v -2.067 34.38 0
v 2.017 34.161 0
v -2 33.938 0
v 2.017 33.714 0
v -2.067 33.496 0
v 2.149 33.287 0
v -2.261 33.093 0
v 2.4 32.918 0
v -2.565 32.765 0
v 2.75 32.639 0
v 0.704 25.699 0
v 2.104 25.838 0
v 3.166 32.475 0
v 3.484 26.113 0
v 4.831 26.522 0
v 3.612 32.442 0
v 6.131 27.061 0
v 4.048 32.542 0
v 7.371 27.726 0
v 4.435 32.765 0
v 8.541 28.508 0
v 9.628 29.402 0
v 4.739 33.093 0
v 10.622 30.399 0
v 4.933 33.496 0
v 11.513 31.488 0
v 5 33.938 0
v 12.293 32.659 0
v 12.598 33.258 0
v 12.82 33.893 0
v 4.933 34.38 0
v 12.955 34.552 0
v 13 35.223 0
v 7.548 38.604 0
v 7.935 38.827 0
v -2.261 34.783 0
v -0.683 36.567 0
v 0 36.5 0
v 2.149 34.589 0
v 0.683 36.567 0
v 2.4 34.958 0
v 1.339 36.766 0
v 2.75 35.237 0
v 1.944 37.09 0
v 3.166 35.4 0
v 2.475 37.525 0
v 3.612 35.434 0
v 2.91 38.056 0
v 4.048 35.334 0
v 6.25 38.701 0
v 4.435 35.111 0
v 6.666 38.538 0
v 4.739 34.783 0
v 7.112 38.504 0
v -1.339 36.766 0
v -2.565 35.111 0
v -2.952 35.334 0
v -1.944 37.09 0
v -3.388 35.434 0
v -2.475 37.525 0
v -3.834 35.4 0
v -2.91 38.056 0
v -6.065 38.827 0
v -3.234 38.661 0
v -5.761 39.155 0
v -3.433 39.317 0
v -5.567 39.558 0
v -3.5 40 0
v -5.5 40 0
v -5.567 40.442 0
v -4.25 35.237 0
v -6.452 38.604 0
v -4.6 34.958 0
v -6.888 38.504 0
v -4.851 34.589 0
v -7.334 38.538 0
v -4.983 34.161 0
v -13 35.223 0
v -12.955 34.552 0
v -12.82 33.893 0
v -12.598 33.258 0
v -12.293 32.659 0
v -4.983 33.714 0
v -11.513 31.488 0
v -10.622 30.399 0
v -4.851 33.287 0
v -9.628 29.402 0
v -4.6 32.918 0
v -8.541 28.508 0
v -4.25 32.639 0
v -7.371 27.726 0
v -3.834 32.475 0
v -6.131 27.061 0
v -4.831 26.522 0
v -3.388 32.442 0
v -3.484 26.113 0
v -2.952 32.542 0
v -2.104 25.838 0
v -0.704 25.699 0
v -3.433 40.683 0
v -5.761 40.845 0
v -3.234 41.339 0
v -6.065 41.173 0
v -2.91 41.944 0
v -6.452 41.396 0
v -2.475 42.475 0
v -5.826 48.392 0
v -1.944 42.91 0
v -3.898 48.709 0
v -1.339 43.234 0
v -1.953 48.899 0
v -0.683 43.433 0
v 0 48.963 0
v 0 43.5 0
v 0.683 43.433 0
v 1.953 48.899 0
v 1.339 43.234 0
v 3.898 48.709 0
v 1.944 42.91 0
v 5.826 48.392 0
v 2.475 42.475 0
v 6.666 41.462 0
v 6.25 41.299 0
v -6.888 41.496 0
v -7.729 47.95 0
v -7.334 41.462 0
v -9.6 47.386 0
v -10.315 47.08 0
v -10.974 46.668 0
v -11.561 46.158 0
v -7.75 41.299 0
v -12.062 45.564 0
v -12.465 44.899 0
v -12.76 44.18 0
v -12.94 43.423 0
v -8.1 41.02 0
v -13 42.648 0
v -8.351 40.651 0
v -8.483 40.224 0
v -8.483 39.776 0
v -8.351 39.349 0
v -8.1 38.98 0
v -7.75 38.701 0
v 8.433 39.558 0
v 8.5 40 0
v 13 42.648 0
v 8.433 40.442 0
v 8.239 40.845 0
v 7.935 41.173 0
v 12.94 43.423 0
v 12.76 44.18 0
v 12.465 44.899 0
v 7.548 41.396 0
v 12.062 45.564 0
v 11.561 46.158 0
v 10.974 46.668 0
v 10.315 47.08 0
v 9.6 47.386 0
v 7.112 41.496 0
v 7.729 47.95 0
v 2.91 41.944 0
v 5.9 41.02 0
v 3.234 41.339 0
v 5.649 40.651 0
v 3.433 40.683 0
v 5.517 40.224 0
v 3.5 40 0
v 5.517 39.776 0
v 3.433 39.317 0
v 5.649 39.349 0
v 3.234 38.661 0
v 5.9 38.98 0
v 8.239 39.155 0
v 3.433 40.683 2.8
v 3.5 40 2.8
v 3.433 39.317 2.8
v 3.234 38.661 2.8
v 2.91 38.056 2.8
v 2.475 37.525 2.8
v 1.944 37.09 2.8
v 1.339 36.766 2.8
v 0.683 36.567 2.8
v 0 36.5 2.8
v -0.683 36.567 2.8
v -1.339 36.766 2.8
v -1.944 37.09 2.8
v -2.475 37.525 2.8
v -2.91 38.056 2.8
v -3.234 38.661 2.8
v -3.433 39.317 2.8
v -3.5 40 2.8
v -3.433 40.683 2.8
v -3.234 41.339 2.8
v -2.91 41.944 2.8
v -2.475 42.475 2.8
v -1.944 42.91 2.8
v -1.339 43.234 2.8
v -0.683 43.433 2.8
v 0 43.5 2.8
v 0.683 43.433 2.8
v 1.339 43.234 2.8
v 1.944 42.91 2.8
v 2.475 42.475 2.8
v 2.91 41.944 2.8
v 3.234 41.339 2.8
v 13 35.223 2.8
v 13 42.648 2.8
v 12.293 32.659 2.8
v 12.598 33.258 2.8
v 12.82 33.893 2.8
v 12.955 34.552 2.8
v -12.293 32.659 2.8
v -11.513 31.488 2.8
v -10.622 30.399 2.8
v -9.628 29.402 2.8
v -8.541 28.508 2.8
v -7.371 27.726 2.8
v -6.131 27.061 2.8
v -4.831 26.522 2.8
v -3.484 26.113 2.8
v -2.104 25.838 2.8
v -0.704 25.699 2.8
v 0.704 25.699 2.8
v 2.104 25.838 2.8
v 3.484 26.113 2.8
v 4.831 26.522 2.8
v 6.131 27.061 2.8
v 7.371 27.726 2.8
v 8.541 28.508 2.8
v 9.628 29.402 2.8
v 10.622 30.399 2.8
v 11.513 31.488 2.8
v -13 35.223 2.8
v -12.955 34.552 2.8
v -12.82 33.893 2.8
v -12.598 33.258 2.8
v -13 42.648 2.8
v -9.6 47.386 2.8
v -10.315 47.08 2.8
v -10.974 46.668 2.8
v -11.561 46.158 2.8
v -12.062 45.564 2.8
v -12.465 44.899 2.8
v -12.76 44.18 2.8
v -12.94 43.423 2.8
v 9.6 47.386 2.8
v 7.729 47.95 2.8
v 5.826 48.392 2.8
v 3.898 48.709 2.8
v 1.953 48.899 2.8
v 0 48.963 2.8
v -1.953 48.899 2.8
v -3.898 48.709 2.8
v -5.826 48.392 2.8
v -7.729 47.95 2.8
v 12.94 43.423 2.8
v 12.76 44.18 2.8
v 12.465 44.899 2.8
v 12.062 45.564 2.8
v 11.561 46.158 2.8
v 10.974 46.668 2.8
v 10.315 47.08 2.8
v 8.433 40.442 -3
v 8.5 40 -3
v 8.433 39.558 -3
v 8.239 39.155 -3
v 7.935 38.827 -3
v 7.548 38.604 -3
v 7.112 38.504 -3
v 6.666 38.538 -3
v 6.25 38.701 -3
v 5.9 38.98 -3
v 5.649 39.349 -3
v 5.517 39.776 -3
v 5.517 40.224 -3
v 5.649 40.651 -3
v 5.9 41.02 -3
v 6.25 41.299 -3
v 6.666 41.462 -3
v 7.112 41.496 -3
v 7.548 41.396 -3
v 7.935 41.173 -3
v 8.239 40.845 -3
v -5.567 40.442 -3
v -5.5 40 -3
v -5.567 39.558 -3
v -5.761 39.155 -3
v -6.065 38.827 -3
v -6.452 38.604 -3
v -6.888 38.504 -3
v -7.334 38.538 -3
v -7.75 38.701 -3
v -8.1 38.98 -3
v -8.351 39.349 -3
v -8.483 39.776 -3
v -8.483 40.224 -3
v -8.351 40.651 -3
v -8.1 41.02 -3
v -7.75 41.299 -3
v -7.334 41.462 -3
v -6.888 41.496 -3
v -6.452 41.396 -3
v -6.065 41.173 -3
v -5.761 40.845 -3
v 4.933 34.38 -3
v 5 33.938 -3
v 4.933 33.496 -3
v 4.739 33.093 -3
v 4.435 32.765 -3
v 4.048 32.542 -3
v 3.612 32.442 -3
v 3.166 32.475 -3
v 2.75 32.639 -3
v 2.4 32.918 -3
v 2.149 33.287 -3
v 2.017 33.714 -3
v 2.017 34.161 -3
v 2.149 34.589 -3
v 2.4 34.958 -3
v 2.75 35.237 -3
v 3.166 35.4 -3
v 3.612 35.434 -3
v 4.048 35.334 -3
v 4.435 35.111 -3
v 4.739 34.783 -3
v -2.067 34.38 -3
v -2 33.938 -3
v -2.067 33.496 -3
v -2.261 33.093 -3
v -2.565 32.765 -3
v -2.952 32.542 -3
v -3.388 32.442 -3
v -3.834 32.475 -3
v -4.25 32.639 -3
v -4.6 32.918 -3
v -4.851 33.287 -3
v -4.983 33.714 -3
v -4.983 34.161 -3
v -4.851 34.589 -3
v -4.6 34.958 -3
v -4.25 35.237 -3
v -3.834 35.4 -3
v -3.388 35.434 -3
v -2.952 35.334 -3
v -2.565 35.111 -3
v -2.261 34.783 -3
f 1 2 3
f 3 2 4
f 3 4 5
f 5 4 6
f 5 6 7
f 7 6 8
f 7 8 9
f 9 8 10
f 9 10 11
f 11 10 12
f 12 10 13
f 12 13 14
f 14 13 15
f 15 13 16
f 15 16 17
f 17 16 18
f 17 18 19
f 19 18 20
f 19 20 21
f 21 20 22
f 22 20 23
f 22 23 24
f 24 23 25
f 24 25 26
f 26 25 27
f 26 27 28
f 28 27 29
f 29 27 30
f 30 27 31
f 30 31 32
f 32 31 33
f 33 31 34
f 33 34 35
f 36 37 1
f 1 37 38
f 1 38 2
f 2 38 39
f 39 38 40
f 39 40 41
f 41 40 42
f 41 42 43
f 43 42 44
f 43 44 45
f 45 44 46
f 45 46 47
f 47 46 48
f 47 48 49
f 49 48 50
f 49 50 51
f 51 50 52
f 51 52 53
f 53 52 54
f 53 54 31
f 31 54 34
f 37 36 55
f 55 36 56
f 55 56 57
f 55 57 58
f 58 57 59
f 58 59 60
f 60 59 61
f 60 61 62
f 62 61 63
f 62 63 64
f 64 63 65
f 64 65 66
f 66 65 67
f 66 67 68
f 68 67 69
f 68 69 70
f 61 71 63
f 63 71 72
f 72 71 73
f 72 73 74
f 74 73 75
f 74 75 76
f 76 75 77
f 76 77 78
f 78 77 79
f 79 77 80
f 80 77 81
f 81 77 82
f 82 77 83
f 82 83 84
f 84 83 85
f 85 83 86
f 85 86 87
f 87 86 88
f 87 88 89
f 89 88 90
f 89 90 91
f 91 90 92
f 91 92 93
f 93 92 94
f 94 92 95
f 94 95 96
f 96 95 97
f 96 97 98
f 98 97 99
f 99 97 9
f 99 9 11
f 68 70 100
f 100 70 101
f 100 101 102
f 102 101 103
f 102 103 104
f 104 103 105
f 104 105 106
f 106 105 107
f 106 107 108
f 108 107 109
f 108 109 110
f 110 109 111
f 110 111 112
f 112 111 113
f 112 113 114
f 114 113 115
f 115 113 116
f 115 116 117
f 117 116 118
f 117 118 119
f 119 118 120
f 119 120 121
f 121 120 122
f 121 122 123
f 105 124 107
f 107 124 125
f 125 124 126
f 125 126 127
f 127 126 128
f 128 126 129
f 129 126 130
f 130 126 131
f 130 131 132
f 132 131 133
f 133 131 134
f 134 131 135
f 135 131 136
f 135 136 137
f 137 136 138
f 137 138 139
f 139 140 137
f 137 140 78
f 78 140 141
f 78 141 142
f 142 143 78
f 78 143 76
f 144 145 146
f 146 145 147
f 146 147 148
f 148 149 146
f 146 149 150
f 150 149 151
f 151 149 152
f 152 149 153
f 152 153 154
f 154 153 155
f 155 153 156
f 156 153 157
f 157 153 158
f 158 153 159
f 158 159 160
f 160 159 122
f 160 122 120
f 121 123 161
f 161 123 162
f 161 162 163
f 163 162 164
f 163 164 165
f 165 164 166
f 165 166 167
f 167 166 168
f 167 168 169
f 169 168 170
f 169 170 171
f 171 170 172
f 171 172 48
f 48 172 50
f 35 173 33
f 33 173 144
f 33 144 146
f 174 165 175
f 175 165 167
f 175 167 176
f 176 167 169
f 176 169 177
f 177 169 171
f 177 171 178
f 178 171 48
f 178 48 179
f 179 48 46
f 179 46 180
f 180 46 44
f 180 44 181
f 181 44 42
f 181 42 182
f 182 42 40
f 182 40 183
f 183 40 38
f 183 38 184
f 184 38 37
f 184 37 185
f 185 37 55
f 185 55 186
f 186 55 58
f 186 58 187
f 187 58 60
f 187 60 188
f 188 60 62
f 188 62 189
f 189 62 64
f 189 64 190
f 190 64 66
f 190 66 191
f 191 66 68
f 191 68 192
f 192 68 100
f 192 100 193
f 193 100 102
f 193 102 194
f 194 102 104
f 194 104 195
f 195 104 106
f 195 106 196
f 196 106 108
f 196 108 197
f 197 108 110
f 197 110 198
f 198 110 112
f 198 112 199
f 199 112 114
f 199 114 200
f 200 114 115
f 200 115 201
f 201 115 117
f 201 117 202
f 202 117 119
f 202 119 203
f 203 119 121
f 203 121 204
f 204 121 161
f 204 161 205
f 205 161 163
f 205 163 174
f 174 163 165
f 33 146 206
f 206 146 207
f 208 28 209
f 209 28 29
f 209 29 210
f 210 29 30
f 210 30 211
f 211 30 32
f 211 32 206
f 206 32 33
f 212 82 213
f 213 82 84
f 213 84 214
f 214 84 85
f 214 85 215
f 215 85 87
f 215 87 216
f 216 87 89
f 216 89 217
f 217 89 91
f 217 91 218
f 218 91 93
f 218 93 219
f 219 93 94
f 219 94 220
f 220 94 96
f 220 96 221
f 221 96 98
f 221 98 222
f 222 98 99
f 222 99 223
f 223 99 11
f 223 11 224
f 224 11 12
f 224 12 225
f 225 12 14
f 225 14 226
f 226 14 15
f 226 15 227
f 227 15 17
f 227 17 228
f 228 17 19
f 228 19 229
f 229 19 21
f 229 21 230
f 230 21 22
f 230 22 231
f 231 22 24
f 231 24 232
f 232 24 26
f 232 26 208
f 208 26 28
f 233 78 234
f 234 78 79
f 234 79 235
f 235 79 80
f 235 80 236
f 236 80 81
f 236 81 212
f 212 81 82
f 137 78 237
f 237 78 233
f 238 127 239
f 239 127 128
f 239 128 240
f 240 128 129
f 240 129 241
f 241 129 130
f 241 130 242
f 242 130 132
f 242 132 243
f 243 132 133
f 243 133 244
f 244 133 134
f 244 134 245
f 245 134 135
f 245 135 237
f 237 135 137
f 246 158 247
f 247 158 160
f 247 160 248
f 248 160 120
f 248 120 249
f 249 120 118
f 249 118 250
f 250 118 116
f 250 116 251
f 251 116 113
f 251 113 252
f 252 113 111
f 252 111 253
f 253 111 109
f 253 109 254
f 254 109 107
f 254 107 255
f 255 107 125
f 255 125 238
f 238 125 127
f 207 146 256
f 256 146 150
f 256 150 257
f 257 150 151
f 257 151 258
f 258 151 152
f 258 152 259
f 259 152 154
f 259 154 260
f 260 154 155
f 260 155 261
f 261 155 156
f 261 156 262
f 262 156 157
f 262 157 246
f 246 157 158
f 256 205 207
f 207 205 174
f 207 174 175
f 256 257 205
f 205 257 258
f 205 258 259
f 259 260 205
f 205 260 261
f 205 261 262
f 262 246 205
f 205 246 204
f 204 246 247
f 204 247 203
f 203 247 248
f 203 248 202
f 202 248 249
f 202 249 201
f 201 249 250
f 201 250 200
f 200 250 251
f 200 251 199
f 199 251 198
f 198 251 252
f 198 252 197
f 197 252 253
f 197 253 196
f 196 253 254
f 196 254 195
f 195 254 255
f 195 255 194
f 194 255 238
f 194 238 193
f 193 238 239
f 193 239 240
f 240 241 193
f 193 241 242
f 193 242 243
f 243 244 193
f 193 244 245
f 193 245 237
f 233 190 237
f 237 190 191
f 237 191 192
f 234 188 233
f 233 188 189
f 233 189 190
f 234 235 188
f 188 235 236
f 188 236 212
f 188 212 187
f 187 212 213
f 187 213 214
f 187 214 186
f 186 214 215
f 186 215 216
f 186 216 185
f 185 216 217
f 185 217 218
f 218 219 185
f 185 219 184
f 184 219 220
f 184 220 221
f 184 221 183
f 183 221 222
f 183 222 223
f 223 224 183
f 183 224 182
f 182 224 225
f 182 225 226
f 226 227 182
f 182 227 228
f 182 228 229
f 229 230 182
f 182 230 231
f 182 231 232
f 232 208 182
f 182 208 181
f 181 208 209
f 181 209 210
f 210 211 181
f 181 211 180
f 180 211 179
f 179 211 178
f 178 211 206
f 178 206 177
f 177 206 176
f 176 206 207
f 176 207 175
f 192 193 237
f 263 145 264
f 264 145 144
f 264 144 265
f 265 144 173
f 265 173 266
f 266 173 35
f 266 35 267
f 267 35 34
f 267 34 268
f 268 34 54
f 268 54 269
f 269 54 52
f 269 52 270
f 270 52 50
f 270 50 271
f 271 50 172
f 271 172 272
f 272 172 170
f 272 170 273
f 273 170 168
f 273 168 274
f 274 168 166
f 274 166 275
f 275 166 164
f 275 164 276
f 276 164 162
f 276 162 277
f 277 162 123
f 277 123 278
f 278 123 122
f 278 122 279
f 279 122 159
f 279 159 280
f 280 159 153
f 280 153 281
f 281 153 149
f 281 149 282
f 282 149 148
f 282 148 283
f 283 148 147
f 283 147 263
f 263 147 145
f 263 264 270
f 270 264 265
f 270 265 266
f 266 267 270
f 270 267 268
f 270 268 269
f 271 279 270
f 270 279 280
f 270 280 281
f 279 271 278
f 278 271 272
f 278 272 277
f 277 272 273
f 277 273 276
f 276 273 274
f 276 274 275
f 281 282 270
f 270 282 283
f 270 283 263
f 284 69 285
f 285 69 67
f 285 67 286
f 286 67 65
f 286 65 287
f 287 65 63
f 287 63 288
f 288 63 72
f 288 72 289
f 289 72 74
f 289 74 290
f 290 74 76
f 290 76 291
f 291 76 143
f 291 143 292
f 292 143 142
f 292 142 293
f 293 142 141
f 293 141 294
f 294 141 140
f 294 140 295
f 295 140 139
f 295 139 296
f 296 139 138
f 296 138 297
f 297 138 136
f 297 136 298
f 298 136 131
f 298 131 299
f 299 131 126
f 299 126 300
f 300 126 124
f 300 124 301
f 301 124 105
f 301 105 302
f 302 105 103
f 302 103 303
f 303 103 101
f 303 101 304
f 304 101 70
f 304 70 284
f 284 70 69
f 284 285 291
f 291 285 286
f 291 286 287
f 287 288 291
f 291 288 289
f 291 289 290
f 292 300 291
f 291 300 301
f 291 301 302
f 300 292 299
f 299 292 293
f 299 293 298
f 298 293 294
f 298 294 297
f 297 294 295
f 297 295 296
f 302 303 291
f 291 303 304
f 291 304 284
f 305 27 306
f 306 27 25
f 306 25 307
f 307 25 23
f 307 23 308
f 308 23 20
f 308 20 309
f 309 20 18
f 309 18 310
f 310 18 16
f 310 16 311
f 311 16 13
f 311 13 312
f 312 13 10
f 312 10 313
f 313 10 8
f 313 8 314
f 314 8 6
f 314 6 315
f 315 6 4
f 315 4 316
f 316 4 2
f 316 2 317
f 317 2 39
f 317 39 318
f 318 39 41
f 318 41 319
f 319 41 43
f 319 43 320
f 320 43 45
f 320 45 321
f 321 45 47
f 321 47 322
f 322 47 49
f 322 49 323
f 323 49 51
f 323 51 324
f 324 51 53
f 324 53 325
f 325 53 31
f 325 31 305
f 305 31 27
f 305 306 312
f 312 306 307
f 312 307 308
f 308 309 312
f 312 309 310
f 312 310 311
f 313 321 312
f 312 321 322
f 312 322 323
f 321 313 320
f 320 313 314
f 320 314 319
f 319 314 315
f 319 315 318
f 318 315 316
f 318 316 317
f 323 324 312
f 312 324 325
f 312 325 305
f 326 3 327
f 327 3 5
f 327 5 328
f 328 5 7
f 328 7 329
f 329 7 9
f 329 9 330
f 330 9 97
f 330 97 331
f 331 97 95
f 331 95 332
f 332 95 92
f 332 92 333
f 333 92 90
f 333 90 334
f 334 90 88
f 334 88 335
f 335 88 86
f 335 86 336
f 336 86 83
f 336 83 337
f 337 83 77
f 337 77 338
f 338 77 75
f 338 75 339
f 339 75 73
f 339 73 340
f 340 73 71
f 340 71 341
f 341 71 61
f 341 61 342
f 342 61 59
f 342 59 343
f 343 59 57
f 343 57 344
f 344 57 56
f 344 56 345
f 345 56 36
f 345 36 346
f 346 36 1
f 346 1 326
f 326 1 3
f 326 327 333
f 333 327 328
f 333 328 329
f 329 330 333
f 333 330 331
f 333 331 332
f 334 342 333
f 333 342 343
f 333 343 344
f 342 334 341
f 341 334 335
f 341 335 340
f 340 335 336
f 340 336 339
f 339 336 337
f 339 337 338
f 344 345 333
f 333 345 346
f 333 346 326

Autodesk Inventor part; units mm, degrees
ref_plane "YZ Plane" through (0, 0, 0) normal (1, 0, 0) x (0, 1, 0)
ref_plane "XZ Plane" through (0, 0, 0) normal (0, 1, 0) x (-1, 0, 0)
ref_plane "XY Plane" through (0, 0, 0) normal (0, 0, 1) x (1, 0, 0)
sketch "Эскиз1" plane through (0, 0, 0) normal (0, 0, 1) x (1, 0, 0)
  circle A0 centre (-3.5, 33.9378) radius 1.5 projected
  circle A1 centre (7, 40) radius 1.5 projected
  circle A2 centre (-7, 40) radius 1.5 projected
  circle A3 centre (3.5, 33.9378) radius 1.5 projected
  arc A4 (9.6, 47.3855) -> (-9.6, 47.3855) centre (0, 18.963) ccw projected
  line L0 (-13, 42.6484) -> (-13, 35.2228) projected
  arc A5 (-12.2928, 32.6593) -> (12.2928, 32.6593) centre (0, 40) ccw projected
  line L1 (13, 35.2228) -> (13, 42.6484) projected
  circle A6 centre (0, 40) radius 3.1 projected
  arc A7 (12.2928, 32.6593) -> (13, 35.2228) centre (8, 35.2228) ccw projected
  arc A8 (13, 42.6484) -> (9.6, 47.3855) centre (8, 42.6484) ccw projected
  arc A9 (-9.6, 47.3855) -> (-13, 42.6484) centre (-8, 42.6484) ccw projected
  arc A10 (-13, 35.2228) -> (-12.2928, 32.6593) centre (-8, 35.2228) ccw projected
  point P0 (0, 0)
extrude "Выдавливание1" add sketch "Эскиз1" against normal blind 3 contours A0 | A1 | A2 | A3
sketch "Эскиз2" plane through (7, 40, 0) normal (0, 0, 1) x (1, 0, 0)
  line L0 (6, -4.7772) -> (6, 2.6484) projected
  arc A0 (-19.2928, -7.3407) -> (5.2928, -7.3407) centre (-7, 0) ccw projected
  line L1 (-20, 2.6484) -> (-20, -4.7772) projected
  arc A1 (2.6, 7.3855) -> (-16.6, 7.3855) centre (-7, -21.037) ccw projected
  circle A2 centre (-7, 0) radius 3.1 construction
  circle A3 centre (-7, 0) radius 3.5
  arc A4 (-16.6, 7.3855) -> (-20, 2.6484) centre (-15, 2.6484) ccw projected
  arc A5 (6, 2.6484) -> (2.6, 7.3855) centre (1, 2.6484) ccw projected
  arc A6 (5.2928, -7.3407) -> (6, -4.7772) centre (1, -4.7772) ccw projected
  arc A7 (-20, -4.7772) -> (-19.2928, -7.3407) centre (-15, -4.7772) ccw projected
  point P0 (-7, -40)
  dimension "d2" = 7
extrude "Выдавливание2" add sketch "Эскиз2" along normal blind 2.8
properties part number "gasket_1"
